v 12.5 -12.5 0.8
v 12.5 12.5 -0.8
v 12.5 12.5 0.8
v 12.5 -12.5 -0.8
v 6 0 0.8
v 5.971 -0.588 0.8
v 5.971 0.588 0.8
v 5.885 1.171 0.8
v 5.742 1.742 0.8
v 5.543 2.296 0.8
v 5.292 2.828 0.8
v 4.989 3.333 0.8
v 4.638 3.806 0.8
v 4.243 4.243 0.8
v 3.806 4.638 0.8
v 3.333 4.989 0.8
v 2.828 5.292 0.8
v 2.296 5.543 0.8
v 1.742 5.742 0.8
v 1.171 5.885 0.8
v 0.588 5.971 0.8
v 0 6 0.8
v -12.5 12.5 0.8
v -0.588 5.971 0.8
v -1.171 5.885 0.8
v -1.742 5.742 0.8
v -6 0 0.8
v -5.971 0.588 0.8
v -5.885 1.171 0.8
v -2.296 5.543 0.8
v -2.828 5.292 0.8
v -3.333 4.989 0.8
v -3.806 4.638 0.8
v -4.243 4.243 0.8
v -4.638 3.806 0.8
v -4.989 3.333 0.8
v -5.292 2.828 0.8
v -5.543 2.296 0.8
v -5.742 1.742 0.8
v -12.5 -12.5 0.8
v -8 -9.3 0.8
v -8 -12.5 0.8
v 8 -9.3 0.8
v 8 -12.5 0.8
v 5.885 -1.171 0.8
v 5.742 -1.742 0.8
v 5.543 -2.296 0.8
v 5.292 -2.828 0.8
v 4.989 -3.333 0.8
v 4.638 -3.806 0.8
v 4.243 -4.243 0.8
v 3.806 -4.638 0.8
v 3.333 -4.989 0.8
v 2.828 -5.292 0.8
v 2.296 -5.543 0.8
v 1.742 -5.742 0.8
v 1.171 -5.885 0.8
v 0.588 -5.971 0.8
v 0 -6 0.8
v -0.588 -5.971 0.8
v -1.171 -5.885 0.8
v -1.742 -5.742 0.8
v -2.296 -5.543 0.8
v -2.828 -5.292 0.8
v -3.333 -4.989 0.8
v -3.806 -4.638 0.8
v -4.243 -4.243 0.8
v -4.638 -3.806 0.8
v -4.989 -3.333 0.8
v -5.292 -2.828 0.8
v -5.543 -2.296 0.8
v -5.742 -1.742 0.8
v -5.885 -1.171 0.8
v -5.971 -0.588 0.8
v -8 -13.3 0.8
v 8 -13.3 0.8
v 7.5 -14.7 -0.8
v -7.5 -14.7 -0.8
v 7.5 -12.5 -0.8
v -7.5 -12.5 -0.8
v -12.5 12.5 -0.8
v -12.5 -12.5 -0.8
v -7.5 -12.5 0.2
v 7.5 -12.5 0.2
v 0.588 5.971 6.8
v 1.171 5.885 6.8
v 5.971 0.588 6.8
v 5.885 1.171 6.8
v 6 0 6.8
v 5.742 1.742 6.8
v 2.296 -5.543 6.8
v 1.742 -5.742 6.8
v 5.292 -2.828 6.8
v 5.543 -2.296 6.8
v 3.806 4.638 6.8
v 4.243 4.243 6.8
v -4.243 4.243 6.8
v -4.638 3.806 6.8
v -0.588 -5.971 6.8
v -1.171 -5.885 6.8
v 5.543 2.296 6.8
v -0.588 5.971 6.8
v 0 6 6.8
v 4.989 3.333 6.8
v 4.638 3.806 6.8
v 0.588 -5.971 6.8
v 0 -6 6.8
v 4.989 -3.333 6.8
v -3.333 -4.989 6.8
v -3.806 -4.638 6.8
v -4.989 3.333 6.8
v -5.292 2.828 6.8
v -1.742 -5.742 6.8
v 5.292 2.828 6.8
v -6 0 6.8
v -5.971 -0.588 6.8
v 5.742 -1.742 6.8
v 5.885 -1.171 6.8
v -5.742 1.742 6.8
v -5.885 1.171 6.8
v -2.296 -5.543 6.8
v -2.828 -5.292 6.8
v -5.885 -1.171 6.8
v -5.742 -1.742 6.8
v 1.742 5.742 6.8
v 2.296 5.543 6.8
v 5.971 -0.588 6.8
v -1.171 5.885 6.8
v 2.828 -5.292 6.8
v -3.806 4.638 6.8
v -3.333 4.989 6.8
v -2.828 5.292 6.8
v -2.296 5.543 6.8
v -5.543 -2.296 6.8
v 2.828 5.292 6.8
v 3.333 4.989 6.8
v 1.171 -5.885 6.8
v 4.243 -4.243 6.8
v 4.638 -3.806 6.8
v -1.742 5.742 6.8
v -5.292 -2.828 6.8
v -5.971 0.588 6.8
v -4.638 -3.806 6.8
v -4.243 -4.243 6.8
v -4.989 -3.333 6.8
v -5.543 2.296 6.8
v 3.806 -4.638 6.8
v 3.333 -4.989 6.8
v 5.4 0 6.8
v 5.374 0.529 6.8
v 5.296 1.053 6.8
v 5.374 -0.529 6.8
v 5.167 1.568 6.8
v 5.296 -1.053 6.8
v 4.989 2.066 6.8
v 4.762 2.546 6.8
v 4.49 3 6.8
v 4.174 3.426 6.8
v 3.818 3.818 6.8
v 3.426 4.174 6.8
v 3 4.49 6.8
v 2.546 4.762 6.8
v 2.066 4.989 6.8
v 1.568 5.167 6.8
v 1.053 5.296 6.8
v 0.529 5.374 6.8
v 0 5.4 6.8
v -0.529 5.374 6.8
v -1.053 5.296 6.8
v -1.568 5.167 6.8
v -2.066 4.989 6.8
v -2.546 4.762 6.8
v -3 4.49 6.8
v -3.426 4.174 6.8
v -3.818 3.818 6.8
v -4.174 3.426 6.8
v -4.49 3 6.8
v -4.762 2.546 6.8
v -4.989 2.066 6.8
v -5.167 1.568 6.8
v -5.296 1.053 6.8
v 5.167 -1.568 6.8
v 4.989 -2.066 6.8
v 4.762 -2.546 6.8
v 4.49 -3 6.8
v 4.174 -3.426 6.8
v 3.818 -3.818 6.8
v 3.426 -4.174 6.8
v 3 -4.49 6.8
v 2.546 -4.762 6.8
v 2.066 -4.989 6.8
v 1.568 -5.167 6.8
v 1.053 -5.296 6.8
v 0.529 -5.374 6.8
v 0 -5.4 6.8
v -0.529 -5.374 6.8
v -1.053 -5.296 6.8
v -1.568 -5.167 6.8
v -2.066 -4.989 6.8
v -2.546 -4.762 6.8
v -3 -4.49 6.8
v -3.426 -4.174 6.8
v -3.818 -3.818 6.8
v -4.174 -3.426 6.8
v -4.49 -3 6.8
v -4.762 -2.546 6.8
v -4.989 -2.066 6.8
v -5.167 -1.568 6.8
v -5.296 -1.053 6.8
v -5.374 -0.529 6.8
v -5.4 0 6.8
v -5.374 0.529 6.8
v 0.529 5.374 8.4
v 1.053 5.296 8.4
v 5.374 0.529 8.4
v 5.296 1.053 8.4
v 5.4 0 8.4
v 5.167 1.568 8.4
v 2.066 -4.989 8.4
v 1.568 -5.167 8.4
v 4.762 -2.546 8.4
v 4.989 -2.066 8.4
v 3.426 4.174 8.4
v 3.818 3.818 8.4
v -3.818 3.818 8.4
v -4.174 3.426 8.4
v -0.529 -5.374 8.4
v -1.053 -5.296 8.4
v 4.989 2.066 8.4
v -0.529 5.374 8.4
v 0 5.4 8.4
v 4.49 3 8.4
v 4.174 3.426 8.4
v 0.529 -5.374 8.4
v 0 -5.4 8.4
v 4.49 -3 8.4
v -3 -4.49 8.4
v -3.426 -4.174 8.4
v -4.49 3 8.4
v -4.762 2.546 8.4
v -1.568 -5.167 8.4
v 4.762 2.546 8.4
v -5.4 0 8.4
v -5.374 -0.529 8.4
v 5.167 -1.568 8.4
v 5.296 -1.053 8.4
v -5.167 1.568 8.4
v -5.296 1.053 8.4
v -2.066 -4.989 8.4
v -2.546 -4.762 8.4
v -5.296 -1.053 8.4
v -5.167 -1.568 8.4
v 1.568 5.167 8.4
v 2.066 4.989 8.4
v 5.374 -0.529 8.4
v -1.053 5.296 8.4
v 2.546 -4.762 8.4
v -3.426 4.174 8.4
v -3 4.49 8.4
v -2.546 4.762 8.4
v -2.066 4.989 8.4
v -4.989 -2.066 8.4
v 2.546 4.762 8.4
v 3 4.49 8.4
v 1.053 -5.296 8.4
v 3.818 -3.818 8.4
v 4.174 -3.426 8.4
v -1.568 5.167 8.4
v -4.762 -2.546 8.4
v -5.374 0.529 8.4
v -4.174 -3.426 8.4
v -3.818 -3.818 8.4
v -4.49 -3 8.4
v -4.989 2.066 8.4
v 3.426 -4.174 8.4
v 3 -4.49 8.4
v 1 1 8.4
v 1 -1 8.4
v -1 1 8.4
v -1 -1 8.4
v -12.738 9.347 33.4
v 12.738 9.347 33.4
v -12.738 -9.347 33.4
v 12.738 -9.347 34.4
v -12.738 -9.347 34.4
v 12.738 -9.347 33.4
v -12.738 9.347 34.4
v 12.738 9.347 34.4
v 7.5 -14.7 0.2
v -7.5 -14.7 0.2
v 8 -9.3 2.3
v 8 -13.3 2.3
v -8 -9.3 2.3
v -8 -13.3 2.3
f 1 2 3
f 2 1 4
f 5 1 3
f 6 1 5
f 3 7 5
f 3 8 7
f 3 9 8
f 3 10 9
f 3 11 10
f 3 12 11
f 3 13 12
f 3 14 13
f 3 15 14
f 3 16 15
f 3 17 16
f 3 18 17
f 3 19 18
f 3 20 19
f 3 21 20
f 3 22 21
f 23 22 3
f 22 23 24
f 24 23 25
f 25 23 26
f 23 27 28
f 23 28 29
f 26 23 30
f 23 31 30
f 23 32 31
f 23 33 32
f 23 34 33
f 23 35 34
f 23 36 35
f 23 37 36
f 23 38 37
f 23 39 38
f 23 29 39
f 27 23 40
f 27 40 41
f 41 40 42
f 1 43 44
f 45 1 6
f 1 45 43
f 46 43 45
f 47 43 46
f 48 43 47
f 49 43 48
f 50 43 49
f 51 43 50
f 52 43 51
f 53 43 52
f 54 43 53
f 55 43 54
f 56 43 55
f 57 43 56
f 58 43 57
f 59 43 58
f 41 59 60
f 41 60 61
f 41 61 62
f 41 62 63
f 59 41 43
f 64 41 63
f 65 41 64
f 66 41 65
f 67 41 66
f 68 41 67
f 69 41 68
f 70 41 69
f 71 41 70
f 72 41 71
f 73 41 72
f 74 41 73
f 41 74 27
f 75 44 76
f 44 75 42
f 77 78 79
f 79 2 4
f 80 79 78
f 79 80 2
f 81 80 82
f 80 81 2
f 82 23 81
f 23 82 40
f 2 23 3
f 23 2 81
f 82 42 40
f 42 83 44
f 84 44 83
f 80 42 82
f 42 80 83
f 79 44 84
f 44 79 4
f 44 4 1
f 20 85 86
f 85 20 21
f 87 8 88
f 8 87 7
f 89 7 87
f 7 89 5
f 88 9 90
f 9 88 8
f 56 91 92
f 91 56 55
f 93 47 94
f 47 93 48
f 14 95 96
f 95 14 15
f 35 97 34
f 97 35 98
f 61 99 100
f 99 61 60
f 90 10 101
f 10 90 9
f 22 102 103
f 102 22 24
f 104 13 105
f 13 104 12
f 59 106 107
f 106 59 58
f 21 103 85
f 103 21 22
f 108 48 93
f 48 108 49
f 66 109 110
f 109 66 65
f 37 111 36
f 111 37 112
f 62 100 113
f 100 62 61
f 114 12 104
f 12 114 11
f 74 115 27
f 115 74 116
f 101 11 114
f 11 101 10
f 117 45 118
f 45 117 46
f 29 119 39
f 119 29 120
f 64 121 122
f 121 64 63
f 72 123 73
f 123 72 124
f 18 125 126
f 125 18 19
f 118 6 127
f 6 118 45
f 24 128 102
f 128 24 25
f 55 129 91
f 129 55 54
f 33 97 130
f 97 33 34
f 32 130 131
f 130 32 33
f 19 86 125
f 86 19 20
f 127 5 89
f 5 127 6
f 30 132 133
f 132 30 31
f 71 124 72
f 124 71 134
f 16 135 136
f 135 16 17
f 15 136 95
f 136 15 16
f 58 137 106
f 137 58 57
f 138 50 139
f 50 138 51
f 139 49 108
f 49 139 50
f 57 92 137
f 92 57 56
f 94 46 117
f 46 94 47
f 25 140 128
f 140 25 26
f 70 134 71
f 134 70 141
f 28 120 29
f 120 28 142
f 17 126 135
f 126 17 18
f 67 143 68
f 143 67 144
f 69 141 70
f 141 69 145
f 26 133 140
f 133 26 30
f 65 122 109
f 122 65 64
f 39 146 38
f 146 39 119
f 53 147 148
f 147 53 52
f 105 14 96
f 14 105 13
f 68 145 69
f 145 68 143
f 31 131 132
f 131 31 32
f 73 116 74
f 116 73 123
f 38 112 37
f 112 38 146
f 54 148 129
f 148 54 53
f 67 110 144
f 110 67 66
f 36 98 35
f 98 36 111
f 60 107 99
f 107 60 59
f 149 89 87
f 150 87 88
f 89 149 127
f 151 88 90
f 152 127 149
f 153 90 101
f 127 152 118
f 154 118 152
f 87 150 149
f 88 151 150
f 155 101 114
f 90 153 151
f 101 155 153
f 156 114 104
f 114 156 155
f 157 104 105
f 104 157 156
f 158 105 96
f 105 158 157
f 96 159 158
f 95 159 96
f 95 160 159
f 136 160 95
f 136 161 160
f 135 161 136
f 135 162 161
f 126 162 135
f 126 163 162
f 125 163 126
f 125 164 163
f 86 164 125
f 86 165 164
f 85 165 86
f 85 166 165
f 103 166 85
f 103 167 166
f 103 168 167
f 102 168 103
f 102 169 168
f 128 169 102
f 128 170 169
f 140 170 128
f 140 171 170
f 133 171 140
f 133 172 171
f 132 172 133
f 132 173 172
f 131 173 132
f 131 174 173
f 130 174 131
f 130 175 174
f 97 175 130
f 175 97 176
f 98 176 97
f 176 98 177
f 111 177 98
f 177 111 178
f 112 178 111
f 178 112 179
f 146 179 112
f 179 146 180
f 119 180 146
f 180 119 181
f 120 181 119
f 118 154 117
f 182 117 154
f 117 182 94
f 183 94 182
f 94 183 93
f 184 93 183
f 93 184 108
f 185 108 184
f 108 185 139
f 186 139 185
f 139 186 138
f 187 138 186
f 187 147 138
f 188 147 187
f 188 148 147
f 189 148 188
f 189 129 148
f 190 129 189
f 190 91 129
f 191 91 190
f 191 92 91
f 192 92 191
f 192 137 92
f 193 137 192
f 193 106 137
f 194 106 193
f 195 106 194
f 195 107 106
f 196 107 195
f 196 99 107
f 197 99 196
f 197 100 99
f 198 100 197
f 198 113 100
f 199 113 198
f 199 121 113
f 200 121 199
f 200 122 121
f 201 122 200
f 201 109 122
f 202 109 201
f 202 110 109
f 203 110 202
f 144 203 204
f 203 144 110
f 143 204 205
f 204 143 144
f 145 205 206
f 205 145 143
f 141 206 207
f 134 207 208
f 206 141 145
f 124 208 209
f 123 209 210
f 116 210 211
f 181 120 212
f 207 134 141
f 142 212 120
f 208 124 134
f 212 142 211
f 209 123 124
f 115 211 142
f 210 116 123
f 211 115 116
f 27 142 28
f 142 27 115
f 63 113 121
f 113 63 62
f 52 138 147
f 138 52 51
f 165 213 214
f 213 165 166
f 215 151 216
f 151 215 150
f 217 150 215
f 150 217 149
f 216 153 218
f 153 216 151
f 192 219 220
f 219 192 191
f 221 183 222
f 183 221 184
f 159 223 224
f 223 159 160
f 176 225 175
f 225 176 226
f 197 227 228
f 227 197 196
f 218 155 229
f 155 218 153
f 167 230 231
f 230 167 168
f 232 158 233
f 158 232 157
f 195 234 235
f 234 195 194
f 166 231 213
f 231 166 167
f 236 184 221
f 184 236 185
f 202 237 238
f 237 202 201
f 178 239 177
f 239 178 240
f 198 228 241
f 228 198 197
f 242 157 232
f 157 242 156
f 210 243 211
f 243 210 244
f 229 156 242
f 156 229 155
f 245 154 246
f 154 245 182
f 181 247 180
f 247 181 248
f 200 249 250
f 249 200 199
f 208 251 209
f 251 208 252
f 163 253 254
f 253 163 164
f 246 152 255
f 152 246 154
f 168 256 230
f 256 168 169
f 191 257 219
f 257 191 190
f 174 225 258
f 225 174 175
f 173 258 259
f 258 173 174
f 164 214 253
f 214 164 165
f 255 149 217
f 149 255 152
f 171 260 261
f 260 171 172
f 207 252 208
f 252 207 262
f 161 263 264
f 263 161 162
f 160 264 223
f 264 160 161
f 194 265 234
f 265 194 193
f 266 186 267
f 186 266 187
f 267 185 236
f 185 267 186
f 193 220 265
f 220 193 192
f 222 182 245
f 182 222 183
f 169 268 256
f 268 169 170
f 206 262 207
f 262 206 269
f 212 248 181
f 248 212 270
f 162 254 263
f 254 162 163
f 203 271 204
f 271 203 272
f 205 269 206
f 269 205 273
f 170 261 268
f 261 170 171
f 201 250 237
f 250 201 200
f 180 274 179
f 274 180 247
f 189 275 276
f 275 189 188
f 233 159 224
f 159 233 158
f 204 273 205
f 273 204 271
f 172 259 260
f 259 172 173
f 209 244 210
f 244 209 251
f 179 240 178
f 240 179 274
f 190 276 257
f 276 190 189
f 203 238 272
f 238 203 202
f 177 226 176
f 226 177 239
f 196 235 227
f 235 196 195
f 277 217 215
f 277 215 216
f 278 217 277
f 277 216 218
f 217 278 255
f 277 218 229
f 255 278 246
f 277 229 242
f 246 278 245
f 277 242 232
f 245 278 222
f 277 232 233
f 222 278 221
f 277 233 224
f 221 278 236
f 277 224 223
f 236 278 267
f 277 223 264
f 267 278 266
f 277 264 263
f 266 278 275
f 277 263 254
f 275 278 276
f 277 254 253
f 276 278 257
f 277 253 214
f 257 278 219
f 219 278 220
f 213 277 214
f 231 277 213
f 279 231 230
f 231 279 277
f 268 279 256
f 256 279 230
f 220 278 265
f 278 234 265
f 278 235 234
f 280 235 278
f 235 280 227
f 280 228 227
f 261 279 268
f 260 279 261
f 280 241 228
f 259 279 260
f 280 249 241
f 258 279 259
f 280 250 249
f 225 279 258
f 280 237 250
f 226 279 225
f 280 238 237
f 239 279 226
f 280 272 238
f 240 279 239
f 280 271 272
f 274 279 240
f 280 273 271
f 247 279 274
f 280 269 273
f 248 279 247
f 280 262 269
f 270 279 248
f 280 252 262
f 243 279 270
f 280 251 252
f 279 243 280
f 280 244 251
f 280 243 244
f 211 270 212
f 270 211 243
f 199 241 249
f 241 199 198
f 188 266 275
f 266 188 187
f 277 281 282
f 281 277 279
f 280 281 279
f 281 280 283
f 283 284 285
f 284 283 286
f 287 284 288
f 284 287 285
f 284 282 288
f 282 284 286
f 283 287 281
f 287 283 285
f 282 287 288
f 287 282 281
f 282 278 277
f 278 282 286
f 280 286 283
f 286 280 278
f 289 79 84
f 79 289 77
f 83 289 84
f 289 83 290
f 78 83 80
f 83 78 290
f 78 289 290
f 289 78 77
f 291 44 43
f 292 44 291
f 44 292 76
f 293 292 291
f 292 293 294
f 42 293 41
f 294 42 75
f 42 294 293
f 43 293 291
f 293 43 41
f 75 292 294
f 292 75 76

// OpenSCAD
$fn = 64;

// Simple camera module representation with a lens body approximating FOV (41°x54°)
// and a ribbon connector sized 15 x 2.2 x 1 mm.

module camera_module(){
    // Base board/body (generic, centered)
    board_x = 25;
    board_y = 25;
    board_z = 1.6;

    // Lens barrel
    barrel_d = 12;
    barrel_h = 6;

    // FOV visualization frustum (not hollow, just a solid "view cone")
    // Using half-angles: 41° -> 20.5°, 54° -> 27°
    // At distance L, width = 2*L*tan(half_angle)
    L = 25;
    fov_w = 2 * L * tan(27);
    fov_h = 2 * L * tan(20.5);

    // Ribbon connector dimensions (given)
    ribbon_w = 15;   // along X
    ribbon_h = 2.2;  // along Y
    ribbon_t = 1;    // along Z

    union() {
        // Board
        translate([0, 0, 0])
            cube([board_x, board_y, board_z], center=true);

        // Lens barrel on top
        translate([0, 0, board_z/2 + barrel_h/2])
            cylinder(d=barrel_d, h=barrel_h, center=true);

        // Lens front rim
        translate([0, 0, board_z/2 + barrel_h + 0.8])
            cylinder(d=barrel_d*0.9, h=1.6, center=true);

        // FOV frustum protruding from lens front
        // Small end near lens, large end at distance L
        near_w = 2 * 1 * tan(27);
        near_h = 2 * 1 * tan(20.5);
        translate([0, 0, board_z/2 + barrel_h + 1.6])
            hull() {
                // near rectangle (slightly in front of lens)
                translate([0, 0, 0.5])
                    cube([max(near_w, 2), max(near_h, 2), 1], center=true);
                // far rectangle at distance L
                translate([0, 0, L + 0.5])
                    cube([fov_w, fov_h, 1], center=true);
            }

        // Ribbon connector from one edge of board (centered near origin overall)
        translate([0, -(board_y/2 + ribbon_h/2), -(board_z/2 - ribbon_t/2)])
            cube([ribbon_w, ribbon_h, ribbon_t], center=true);

        // Small connector housing on board edge
        translate([0, -(board_y/2 - 1.2), board_z/2 + 0.75])
            cube([16, 4, 1.5], center=true);
    }
}

camera_module();
